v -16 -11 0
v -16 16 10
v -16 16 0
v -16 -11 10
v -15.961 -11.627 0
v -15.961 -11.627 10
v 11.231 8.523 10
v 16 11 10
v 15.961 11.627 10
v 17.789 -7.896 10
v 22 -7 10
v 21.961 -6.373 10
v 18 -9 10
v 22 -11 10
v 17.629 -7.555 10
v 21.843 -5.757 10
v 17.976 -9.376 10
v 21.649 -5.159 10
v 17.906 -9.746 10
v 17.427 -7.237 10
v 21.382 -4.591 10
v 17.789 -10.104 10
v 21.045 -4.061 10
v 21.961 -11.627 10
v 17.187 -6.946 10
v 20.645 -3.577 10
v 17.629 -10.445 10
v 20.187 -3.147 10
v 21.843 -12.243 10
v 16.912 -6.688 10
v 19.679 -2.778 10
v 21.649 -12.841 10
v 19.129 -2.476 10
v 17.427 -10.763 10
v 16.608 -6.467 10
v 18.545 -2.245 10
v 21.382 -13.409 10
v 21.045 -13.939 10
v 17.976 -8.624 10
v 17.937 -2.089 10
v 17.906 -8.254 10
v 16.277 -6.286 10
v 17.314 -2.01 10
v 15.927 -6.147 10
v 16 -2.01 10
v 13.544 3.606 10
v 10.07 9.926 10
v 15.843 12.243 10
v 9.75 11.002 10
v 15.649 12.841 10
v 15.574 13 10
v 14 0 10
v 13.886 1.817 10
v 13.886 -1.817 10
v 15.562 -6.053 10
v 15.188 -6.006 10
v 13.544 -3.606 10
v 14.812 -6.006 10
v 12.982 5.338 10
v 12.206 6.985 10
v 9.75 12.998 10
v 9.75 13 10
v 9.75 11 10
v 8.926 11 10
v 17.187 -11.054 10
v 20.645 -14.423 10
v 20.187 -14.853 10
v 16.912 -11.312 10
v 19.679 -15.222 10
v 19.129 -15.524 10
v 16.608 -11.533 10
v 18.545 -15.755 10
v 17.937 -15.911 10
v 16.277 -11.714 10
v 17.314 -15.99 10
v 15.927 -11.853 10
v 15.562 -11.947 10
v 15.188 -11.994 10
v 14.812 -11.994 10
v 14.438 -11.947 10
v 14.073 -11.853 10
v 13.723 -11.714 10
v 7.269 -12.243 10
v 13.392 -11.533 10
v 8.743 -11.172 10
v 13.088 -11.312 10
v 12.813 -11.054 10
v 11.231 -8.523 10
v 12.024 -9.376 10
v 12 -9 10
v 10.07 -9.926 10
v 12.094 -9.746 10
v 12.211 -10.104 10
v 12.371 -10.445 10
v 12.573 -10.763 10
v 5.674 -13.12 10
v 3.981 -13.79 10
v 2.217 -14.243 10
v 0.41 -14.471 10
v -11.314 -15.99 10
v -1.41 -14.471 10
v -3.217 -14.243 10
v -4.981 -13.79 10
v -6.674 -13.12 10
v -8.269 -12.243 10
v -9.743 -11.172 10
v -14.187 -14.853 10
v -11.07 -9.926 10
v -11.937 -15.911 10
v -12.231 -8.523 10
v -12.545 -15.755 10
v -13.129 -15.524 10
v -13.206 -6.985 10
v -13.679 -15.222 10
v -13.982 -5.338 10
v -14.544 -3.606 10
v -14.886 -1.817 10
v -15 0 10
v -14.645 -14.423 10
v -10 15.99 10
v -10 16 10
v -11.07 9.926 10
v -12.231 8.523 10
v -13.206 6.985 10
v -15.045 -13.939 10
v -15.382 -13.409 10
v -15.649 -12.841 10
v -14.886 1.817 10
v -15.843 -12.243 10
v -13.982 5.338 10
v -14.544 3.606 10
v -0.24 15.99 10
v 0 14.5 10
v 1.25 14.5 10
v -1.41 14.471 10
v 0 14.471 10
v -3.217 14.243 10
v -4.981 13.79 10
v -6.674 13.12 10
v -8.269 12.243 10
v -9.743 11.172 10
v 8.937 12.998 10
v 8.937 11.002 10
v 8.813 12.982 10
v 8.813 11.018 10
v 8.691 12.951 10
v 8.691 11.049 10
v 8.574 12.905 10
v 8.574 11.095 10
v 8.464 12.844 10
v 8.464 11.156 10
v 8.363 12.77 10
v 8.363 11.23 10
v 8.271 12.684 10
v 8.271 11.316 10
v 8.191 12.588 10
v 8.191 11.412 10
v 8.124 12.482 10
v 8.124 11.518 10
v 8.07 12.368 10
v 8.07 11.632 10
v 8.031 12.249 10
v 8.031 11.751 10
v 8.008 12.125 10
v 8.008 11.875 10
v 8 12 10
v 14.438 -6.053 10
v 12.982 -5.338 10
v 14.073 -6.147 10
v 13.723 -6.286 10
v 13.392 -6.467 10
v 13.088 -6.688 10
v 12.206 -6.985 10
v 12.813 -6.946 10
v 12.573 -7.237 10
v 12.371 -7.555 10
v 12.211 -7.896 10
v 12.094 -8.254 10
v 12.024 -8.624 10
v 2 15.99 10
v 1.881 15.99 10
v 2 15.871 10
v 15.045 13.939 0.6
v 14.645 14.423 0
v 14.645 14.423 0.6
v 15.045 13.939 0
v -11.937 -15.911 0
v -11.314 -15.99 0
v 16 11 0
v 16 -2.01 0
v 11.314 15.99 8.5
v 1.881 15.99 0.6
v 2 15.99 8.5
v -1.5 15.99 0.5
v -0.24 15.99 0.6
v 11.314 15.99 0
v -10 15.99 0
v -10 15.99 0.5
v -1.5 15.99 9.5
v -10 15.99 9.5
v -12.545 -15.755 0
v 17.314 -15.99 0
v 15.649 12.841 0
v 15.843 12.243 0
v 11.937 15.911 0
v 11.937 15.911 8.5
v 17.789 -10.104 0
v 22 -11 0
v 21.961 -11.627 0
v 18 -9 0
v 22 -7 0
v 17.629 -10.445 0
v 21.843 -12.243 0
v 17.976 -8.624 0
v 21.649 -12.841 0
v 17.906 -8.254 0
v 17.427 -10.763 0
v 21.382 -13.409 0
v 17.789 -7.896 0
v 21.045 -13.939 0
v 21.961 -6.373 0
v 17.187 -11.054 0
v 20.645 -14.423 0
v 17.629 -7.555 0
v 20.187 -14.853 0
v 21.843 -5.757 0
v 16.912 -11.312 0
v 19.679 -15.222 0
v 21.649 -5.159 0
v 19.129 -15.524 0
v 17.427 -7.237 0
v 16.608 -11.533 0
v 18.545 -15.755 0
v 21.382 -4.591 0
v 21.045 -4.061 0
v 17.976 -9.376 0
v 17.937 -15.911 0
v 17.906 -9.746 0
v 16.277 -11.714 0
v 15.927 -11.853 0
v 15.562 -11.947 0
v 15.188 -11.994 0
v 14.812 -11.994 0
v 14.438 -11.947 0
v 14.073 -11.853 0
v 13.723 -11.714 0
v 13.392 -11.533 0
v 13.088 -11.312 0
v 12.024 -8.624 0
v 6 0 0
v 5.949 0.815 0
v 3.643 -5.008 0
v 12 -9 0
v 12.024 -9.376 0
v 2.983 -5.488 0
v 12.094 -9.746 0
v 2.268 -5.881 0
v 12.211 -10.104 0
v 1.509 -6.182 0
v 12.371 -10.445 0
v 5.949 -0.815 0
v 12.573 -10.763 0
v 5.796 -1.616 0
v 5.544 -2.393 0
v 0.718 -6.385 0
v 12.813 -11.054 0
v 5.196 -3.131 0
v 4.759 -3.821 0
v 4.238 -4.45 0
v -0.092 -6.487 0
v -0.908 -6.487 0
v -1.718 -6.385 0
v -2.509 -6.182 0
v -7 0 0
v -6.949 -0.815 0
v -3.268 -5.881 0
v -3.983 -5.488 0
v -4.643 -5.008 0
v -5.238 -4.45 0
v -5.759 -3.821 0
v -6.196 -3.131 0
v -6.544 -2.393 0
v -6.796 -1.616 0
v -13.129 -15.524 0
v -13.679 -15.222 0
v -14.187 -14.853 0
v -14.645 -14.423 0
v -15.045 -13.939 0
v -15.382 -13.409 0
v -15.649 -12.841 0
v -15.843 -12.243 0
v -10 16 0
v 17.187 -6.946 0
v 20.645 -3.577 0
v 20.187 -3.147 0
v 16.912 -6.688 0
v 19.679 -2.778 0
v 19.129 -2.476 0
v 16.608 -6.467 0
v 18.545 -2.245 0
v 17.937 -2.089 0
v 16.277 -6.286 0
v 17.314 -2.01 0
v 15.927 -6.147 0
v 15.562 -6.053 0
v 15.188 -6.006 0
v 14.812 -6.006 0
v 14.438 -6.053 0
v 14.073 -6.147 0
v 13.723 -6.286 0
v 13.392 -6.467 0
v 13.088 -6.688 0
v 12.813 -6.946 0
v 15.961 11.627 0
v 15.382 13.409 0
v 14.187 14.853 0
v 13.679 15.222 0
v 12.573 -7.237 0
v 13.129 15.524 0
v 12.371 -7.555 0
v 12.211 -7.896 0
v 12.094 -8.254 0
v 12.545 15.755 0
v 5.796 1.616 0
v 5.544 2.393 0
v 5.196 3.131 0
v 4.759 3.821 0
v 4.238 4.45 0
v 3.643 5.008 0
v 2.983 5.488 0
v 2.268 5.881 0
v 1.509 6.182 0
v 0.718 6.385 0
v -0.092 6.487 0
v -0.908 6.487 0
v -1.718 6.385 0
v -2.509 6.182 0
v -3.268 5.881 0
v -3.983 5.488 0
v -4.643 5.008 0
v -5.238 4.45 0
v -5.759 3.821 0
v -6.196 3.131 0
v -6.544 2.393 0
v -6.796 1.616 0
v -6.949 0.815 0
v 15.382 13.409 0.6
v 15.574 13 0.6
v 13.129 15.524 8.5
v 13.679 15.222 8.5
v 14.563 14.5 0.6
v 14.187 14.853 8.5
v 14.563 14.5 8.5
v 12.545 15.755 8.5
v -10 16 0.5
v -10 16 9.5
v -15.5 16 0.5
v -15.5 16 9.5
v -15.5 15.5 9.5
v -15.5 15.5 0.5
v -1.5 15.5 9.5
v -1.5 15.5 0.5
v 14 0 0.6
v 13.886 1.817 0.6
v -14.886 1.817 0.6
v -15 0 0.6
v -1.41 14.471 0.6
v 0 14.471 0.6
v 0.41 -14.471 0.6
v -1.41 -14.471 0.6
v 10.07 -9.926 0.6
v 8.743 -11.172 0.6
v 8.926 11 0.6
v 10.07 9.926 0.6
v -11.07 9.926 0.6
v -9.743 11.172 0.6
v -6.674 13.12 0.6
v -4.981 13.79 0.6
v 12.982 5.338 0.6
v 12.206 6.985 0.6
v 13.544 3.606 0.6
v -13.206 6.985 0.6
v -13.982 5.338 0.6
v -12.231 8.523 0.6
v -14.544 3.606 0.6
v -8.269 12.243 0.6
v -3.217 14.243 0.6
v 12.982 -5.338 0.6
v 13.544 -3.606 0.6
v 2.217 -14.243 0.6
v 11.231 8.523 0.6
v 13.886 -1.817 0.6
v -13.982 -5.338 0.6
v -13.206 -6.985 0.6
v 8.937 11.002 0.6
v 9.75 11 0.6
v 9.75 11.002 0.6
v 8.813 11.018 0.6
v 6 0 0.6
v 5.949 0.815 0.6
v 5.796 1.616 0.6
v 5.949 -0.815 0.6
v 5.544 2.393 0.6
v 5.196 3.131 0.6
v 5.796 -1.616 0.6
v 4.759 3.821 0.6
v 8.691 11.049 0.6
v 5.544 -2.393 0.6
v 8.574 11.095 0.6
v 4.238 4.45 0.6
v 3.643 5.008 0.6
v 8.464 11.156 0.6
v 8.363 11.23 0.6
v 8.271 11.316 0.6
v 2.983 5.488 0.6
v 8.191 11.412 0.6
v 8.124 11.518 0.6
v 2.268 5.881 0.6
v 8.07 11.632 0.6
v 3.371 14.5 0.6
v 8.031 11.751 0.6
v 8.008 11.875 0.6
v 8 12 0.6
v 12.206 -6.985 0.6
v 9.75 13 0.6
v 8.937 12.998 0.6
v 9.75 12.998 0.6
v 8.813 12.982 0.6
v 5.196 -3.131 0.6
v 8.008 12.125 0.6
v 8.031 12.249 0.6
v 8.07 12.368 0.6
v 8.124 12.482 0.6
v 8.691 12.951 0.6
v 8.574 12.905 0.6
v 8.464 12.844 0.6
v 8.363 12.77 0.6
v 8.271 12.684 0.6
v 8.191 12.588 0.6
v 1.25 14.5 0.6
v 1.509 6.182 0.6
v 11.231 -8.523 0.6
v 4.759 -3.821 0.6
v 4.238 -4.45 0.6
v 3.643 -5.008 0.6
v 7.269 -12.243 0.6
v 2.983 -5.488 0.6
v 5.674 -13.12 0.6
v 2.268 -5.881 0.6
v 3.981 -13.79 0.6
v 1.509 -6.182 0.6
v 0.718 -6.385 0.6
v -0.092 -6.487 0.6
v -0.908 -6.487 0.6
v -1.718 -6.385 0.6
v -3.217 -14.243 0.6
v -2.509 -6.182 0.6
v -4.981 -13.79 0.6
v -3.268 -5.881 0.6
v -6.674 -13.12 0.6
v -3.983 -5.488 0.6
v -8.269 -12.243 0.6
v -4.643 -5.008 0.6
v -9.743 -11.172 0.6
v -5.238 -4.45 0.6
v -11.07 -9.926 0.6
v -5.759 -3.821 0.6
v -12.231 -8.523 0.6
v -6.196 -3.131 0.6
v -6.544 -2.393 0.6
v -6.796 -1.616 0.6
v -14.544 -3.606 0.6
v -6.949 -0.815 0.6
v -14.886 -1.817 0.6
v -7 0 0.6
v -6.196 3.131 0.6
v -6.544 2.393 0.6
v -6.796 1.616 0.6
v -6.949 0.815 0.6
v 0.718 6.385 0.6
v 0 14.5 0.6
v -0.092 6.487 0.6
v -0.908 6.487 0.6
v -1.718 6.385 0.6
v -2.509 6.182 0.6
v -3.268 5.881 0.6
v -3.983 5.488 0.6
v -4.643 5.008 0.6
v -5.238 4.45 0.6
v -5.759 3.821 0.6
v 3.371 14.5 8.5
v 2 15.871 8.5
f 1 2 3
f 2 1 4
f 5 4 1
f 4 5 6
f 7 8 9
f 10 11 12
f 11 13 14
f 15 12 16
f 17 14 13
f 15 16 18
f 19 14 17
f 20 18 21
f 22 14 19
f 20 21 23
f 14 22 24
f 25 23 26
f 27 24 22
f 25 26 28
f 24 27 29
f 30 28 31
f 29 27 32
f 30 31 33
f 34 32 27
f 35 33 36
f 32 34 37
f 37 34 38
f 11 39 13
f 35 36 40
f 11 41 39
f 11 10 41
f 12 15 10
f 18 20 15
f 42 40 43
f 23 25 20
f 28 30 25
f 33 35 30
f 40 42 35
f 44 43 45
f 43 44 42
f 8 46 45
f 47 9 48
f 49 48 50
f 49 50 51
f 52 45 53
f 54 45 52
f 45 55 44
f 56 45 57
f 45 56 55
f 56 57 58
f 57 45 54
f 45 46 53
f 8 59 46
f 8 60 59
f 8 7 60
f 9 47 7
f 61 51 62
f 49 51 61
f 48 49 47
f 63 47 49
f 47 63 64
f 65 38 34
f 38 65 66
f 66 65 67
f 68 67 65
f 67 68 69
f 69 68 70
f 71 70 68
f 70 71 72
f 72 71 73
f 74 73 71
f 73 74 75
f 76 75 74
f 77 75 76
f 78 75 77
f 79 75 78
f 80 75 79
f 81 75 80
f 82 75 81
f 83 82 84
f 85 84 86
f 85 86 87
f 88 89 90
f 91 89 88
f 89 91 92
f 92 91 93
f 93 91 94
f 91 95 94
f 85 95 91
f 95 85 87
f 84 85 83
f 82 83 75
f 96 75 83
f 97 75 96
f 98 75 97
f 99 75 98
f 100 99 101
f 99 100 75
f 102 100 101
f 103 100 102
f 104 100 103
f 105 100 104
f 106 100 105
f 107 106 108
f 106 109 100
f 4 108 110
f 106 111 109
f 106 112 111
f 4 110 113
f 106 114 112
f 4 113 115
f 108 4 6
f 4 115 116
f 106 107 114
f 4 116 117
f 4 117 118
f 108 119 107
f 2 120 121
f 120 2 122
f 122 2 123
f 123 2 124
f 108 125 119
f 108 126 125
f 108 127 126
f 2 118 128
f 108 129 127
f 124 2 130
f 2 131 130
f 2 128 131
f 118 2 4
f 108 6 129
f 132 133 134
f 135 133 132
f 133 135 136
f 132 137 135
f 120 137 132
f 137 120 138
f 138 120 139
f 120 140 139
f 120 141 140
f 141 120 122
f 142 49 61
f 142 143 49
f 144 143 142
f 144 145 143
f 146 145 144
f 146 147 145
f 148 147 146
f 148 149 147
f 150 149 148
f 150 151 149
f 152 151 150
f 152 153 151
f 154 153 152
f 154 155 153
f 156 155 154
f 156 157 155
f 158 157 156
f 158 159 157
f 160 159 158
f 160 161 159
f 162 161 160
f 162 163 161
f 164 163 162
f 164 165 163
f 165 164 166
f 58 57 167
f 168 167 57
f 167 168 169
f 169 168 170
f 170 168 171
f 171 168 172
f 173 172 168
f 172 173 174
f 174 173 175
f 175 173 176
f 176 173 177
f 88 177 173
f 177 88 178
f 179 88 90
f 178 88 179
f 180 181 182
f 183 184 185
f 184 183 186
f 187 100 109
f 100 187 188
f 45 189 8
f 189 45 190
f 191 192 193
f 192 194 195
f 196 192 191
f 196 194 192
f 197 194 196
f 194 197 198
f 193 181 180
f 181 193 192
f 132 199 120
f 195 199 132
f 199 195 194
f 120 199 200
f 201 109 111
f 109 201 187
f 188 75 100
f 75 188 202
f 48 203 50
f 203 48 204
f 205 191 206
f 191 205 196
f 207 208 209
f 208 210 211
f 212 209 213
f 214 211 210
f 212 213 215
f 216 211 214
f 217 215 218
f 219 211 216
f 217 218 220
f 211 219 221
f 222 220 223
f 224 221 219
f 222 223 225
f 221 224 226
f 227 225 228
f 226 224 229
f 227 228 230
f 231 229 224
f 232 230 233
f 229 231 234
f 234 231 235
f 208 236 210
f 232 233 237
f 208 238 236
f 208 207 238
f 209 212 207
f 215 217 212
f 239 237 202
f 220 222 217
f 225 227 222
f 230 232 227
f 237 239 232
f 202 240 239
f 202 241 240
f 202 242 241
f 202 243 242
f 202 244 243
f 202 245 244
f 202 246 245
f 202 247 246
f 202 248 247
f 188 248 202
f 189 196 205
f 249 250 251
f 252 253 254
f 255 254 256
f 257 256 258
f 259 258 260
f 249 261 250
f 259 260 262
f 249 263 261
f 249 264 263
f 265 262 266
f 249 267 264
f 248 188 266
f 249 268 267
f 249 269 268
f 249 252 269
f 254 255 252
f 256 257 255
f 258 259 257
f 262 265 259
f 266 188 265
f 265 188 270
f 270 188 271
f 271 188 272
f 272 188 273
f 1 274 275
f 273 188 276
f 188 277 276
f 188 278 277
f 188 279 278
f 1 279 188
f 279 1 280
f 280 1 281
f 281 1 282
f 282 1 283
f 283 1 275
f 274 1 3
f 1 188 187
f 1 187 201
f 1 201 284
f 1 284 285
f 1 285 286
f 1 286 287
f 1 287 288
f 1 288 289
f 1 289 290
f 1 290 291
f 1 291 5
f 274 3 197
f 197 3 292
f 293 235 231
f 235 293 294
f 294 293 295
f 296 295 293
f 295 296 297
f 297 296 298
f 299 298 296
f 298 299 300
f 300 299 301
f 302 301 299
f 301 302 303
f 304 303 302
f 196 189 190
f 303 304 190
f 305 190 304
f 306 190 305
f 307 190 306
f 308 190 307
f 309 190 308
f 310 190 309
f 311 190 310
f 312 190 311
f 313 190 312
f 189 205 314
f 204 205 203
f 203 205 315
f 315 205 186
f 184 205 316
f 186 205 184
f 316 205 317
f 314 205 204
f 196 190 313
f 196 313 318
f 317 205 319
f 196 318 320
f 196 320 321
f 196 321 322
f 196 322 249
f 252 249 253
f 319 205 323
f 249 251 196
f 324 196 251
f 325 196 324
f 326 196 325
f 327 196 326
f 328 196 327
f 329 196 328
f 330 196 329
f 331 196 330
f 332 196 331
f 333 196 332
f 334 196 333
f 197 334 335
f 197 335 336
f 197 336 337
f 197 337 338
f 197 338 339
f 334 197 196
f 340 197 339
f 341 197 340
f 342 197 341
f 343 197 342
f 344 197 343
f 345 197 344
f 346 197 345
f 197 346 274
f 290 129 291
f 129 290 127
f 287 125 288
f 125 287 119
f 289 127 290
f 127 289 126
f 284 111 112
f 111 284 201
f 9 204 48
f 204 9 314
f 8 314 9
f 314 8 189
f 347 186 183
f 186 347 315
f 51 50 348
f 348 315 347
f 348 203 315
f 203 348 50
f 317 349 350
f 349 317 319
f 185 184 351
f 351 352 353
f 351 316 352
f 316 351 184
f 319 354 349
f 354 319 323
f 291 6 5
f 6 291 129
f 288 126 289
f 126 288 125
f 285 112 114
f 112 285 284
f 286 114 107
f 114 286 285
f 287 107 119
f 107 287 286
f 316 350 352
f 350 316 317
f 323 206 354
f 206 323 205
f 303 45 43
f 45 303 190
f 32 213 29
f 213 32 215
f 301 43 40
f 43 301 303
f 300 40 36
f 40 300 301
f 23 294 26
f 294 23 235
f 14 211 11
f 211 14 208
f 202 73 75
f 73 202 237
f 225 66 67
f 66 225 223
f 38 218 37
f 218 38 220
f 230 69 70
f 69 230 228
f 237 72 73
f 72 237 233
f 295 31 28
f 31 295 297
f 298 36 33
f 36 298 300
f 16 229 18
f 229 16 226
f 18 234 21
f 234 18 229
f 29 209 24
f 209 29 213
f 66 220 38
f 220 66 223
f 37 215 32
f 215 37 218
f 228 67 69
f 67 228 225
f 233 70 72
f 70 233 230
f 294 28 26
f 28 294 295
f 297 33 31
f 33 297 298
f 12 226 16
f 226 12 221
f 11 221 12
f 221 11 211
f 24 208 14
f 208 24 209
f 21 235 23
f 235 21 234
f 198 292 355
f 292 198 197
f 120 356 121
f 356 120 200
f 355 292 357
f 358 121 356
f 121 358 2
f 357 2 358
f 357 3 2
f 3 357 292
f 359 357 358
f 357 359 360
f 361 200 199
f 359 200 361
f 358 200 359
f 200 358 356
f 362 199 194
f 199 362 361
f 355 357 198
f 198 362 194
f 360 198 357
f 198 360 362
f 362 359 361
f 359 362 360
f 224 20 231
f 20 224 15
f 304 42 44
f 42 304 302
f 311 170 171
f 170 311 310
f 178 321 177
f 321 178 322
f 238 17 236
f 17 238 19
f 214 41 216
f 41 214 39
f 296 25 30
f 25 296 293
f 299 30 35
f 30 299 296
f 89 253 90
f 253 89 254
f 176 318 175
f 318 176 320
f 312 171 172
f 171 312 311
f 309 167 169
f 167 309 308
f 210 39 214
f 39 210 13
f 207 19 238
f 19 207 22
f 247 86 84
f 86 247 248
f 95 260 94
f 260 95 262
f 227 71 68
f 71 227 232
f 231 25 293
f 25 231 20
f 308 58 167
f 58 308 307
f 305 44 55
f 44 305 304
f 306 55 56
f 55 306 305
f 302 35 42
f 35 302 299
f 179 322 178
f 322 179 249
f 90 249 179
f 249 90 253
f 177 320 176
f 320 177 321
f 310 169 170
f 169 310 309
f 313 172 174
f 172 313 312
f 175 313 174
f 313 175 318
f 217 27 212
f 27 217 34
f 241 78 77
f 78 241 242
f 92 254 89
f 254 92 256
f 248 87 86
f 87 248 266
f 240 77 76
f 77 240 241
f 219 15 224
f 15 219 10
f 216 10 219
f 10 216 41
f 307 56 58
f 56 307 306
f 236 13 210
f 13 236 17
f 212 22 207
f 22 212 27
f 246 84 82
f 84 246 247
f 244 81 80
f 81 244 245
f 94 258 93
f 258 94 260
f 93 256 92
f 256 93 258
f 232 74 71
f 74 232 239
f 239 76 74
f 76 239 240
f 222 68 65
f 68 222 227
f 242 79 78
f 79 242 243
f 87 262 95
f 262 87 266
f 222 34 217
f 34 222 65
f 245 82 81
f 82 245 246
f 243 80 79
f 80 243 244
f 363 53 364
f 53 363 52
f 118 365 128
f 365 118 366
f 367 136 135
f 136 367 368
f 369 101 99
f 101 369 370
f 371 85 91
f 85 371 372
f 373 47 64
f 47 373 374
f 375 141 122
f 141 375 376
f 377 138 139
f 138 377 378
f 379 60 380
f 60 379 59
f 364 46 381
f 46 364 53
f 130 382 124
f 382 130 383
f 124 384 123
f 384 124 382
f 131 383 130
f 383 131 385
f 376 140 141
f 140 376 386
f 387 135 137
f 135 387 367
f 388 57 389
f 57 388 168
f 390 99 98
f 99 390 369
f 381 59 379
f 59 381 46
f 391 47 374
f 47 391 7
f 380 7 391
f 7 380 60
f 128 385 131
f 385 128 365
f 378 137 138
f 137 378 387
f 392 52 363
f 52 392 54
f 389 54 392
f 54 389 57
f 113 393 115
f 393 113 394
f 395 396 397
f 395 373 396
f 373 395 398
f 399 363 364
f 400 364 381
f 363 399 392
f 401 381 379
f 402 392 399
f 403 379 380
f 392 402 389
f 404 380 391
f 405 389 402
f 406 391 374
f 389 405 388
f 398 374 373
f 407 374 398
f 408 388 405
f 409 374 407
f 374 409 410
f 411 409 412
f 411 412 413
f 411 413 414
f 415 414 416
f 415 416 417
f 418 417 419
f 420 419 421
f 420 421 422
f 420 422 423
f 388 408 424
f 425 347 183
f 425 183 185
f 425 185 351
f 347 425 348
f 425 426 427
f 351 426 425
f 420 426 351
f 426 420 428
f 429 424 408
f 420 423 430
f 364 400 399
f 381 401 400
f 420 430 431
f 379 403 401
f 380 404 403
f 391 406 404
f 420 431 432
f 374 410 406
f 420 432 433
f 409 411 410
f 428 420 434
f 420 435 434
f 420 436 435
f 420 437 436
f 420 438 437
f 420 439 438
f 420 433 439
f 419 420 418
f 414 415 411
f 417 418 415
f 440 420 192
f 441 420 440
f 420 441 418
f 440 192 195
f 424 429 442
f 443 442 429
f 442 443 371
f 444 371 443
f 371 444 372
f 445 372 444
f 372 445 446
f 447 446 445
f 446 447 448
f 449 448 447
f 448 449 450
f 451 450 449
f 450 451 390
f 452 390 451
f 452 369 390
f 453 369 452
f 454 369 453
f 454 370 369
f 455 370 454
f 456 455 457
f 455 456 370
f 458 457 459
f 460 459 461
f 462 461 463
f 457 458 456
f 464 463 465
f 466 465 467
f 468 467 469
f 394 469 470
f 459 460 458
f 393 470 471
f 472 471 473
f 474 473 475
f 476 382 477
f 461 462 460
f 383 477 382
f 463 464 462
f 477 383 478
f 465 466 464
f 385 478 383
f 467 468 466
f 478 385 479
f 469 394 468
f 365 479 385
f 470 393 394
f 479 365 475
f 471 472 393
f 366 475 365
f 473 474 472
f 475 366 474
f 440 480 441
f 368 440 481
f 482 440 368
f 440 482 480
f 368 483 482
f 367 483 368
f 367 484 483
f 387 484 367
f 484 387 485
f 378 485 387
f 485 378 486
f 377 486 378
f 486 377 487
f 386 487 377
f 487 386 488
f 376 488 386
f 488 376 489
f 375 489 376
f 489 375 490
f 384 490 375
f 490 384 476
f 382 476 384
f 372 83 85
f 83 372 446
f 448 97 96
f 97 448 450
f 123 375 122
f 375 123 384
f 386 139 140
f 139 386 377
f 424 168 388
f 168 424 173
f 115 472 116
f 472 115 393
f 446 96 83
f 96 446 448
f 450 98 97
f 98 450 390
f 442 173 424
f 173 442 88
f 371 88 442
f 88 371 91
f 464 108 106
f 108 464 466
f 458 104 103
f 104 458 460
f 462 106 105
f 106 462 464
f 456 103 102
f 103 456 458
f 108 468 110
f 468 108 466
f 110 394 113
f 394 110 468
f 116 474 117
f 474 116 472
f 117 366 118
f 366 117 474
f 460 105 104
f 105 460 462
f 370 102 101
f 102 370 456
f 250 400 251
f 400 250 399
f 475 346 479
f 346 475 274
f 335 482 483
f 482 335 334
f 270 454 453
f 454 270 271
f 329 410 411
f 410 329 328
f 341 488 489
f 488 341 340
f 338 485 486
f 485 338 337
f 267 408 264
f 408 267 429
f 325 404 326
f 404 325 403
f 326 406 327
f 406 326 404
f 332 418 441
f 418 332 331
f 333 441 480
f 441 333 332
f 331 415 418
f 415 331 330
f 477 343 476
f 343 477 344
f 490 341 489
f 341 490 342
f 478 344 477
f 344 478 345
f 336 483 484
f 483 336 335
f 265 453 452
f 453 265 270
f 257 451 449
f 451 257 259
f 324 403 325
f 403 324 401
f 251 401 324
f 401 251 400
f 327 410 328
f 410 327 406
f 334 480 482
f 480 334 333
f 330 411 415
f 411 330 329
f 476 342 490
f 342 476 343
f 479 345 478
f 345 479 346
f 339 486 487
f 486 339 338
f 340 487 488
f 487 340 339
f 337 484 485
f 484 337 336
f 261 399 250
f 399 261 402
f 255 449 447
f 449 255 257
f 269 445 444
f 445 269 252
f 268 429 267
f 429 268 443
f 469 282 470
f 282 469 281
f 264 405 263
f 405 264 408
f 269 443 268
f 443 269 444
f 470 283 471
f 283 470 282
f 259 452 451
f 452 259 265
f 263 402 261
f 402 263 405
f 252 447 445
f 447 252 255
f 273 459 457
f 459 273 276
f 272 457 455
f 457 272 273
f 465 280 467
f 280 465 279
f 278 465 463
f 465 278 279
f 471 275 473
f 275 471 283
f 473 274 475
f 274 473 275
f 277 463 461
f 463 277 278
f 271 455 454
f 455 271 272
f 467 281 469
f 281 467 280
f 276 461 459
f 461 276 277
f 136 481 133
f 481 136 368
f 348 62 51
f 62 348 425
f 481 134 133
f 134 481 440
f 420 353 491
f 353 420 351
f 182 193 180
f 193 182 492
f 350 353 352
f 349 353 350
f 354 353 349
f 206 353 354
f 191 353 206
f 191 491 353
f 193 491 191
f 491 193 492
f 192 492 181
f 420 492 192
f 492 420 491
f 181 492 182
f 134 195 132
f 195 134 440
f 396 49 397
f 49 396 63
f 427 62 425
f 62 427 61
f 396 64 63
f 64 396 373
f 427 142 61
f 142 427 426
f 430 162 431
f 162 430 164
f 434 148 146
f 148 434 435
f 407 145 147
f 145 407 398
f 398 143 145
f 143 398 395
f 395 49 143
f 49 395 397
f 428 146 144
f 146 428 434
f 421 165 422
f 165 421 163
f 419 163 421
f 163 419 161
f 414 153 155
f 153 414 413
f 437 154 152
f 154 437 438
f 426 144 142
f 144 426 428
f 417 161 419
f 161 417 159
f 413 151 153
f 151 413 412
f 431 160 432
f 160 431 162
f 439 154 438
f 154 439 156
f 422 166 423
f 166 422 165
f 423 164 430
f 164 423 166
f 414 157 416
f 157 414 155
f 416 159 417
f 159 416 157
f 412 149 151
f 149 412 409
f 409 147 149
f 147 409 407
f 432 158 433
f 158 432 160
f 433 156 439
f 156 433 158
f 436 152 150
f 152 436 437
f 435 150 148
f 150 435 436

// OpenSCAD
$fn = 50;


union() {
	difference() {
		union() {
			translate(v = [0, 0, 0]) {
				rotate(a = [0, 0, 0]) {
					hull() {
						translate(v = [-11.0000000000, 11.0000000000, 0]) {
							rotate(a = [0, 0, 0]) {
								translate(v = [0, 0, 0]) {
									rotate(a = [0, 0, 0]) {
										cylinder(h = 10, r = 5);
									}
								}
							}
						}
						translate(v = [11.0000000000, 11.0000000000, 0]) {
							rotate(a = [0, 0, 0]) {
								translate(v = [0, 0, 0]) {
									rotate(a = [0, 0, 0]) {
										cylinder(h = 10, r = 5);
									}
								}
							}
						}
						translate(v = [-11.0000000000, -11.0000000000, 0]) {
							rotate(a = [0, 0, 0]) {
								translate(v = [0, 0, 0]) {
									rotate(a = [0, 0, 0]) {
										cylinder(h = 10, r = 5);
									}
								}
							}
						}
						translate(v = [11.0000000000, -11.0000000000, 0]) {
							rotate(a = [0, 0, 0]) {
								translate(v = [0, 0, 0]) {
									rotate(a = [0, 0, 0]) {
										cylinder(h = 10, r = 5);
									}
								}
							}
						}
					}
				}
			}
			translate(v = [7.5000000000, -9.0000000000, 0]) {
				rotate(a = [0, 0, 0]) {
					hull() {
						translate(v = [-9.5000000000, 2.0000000000, 0]) {
							rotate(a = [0, 0, 0]) {
								translate(v = [0, 0, 0]) {
									rotate(a = [0, 0, 0]) {
										cylinder(h = 10, r = 5);
									}
								}
							}
						}
						translate(v = [9.5000000000, 2.0000000000, 0]) {
							rotate(a = [0, 0, 0]) {
								translate(v = [0, 0, 0]) {
									rotate(a = [0, 0, 0]) {
										cylinder(h = 10, r = 5);
									}
								}
							}
						}
						translate(v = [-9.5000000000, -2.0000000000, 0]) {
							rotate(a = [0, 0, 0]) {
								translate(v = [0, 0, 0]) {
									rotate(a = [0, 0, 0]) {
										cylinder(h = 10, r = 5);
									}
								}
							}
						}
						translate(v = [9.5000000000, -2.0000000000, 0]) {
							rotate(a = [0, 0, 0]) {
								translate(v = [0, 0, 0]) {
									rotate(a = [0, 0, 0]) {
										cylinder(h = 10, r = 5);
									}
								}
							}
						}
					}
				}
			}
			translate(v = [-16.0000000000, 10.0000000000, 0]) {
				rotate(a = [0, 0, 0]) {
					cube(size = [6, 6, 10]);
				}
			}
		}
		union() {
			translate(v = [-15.5000000000, 15.5000000000, 0.5000000000]) {
				rotate(a = [0, 0, 0]) {
					cube(size = [14, 0.5000000000, 9.0000000000]);
				}
			}
			translate(v = [15.0000000000, -9.0000000000, -125.0000000000]) {
				rotate(a = [0, 0, 0]) {
					cylinder(h = 250, r = 3.0000000000);
				}
			}
			translate(v = [-0.5000000000, 0.0000000000, 0.6000000000]) {
				rotate(a = [0, 0, 0]) {
					cylinder(h = 12.4000000000, r = 14.5000000000);
				}
			}
			translate(v = [-0.5000000000, 0.0000000000, -5.0000000000]) {
				rotate(a = [0, 0, 0]) {
					cylinder(h = 10, r = 6.5000000000);
				}
			}
			translate(v = [0.0000000000, 13.0000000000, 0.6000000000]) {
				rotate(a = [0, 0, 0]) {
					cube(size = [16.0000000000, 1.5000000000, 12.4000000000]);
				}
			}
			translate(v = [2.0000000000, 13.0000000000, 8.5000000000]) {
				rotate(a = [0, 0, 0]) {
					cube(size = [14.0000000000, 4.5000000000, 1.5000000000]);
				}
			}
			translate(v = [-3.0000000000, 18.7500000000, 0.6000000000]) {
				rotate(a = [0, 0, -45]) {
					cube(size = [10, 1.5000000000, 12.4000000000]);
				}
			}
			translate(v = [2.2500000000, 11.0000000000, 0.6000000000]) {
				rotate(a = [0, 0, 0]) {
					cube(size = [7.5000000000, 2, 9.4000000000]);
				}
			}
		}
	}
	union() {
		translate(v = [11.5000000000, 12, 0]) {
			rotate(a = [0, 0, 0]) {
				hull() {
					translate(v = [2.5000000000, 0, 0]) {
						rotate(a = [0, 0, 0]) {
							translate(v = [0, 0, 0]) {
								rotate(a = [0, 0, 0]) {
									cylinder(h = 10, r = 1.0000000000);
								}
							}
						}
					}
					translate(v = [-2.5000000000, 0, 0]) {
						rotate(a = [0, 0, 0]) {
							translate(v = [0, 0, 0]) {
								rotate(a = [0, 0, 0]) {
									cylinder(h = 10, r = 1.0000000000);
								}
							}
						}
					}
				}
			}
		}
	}
}
